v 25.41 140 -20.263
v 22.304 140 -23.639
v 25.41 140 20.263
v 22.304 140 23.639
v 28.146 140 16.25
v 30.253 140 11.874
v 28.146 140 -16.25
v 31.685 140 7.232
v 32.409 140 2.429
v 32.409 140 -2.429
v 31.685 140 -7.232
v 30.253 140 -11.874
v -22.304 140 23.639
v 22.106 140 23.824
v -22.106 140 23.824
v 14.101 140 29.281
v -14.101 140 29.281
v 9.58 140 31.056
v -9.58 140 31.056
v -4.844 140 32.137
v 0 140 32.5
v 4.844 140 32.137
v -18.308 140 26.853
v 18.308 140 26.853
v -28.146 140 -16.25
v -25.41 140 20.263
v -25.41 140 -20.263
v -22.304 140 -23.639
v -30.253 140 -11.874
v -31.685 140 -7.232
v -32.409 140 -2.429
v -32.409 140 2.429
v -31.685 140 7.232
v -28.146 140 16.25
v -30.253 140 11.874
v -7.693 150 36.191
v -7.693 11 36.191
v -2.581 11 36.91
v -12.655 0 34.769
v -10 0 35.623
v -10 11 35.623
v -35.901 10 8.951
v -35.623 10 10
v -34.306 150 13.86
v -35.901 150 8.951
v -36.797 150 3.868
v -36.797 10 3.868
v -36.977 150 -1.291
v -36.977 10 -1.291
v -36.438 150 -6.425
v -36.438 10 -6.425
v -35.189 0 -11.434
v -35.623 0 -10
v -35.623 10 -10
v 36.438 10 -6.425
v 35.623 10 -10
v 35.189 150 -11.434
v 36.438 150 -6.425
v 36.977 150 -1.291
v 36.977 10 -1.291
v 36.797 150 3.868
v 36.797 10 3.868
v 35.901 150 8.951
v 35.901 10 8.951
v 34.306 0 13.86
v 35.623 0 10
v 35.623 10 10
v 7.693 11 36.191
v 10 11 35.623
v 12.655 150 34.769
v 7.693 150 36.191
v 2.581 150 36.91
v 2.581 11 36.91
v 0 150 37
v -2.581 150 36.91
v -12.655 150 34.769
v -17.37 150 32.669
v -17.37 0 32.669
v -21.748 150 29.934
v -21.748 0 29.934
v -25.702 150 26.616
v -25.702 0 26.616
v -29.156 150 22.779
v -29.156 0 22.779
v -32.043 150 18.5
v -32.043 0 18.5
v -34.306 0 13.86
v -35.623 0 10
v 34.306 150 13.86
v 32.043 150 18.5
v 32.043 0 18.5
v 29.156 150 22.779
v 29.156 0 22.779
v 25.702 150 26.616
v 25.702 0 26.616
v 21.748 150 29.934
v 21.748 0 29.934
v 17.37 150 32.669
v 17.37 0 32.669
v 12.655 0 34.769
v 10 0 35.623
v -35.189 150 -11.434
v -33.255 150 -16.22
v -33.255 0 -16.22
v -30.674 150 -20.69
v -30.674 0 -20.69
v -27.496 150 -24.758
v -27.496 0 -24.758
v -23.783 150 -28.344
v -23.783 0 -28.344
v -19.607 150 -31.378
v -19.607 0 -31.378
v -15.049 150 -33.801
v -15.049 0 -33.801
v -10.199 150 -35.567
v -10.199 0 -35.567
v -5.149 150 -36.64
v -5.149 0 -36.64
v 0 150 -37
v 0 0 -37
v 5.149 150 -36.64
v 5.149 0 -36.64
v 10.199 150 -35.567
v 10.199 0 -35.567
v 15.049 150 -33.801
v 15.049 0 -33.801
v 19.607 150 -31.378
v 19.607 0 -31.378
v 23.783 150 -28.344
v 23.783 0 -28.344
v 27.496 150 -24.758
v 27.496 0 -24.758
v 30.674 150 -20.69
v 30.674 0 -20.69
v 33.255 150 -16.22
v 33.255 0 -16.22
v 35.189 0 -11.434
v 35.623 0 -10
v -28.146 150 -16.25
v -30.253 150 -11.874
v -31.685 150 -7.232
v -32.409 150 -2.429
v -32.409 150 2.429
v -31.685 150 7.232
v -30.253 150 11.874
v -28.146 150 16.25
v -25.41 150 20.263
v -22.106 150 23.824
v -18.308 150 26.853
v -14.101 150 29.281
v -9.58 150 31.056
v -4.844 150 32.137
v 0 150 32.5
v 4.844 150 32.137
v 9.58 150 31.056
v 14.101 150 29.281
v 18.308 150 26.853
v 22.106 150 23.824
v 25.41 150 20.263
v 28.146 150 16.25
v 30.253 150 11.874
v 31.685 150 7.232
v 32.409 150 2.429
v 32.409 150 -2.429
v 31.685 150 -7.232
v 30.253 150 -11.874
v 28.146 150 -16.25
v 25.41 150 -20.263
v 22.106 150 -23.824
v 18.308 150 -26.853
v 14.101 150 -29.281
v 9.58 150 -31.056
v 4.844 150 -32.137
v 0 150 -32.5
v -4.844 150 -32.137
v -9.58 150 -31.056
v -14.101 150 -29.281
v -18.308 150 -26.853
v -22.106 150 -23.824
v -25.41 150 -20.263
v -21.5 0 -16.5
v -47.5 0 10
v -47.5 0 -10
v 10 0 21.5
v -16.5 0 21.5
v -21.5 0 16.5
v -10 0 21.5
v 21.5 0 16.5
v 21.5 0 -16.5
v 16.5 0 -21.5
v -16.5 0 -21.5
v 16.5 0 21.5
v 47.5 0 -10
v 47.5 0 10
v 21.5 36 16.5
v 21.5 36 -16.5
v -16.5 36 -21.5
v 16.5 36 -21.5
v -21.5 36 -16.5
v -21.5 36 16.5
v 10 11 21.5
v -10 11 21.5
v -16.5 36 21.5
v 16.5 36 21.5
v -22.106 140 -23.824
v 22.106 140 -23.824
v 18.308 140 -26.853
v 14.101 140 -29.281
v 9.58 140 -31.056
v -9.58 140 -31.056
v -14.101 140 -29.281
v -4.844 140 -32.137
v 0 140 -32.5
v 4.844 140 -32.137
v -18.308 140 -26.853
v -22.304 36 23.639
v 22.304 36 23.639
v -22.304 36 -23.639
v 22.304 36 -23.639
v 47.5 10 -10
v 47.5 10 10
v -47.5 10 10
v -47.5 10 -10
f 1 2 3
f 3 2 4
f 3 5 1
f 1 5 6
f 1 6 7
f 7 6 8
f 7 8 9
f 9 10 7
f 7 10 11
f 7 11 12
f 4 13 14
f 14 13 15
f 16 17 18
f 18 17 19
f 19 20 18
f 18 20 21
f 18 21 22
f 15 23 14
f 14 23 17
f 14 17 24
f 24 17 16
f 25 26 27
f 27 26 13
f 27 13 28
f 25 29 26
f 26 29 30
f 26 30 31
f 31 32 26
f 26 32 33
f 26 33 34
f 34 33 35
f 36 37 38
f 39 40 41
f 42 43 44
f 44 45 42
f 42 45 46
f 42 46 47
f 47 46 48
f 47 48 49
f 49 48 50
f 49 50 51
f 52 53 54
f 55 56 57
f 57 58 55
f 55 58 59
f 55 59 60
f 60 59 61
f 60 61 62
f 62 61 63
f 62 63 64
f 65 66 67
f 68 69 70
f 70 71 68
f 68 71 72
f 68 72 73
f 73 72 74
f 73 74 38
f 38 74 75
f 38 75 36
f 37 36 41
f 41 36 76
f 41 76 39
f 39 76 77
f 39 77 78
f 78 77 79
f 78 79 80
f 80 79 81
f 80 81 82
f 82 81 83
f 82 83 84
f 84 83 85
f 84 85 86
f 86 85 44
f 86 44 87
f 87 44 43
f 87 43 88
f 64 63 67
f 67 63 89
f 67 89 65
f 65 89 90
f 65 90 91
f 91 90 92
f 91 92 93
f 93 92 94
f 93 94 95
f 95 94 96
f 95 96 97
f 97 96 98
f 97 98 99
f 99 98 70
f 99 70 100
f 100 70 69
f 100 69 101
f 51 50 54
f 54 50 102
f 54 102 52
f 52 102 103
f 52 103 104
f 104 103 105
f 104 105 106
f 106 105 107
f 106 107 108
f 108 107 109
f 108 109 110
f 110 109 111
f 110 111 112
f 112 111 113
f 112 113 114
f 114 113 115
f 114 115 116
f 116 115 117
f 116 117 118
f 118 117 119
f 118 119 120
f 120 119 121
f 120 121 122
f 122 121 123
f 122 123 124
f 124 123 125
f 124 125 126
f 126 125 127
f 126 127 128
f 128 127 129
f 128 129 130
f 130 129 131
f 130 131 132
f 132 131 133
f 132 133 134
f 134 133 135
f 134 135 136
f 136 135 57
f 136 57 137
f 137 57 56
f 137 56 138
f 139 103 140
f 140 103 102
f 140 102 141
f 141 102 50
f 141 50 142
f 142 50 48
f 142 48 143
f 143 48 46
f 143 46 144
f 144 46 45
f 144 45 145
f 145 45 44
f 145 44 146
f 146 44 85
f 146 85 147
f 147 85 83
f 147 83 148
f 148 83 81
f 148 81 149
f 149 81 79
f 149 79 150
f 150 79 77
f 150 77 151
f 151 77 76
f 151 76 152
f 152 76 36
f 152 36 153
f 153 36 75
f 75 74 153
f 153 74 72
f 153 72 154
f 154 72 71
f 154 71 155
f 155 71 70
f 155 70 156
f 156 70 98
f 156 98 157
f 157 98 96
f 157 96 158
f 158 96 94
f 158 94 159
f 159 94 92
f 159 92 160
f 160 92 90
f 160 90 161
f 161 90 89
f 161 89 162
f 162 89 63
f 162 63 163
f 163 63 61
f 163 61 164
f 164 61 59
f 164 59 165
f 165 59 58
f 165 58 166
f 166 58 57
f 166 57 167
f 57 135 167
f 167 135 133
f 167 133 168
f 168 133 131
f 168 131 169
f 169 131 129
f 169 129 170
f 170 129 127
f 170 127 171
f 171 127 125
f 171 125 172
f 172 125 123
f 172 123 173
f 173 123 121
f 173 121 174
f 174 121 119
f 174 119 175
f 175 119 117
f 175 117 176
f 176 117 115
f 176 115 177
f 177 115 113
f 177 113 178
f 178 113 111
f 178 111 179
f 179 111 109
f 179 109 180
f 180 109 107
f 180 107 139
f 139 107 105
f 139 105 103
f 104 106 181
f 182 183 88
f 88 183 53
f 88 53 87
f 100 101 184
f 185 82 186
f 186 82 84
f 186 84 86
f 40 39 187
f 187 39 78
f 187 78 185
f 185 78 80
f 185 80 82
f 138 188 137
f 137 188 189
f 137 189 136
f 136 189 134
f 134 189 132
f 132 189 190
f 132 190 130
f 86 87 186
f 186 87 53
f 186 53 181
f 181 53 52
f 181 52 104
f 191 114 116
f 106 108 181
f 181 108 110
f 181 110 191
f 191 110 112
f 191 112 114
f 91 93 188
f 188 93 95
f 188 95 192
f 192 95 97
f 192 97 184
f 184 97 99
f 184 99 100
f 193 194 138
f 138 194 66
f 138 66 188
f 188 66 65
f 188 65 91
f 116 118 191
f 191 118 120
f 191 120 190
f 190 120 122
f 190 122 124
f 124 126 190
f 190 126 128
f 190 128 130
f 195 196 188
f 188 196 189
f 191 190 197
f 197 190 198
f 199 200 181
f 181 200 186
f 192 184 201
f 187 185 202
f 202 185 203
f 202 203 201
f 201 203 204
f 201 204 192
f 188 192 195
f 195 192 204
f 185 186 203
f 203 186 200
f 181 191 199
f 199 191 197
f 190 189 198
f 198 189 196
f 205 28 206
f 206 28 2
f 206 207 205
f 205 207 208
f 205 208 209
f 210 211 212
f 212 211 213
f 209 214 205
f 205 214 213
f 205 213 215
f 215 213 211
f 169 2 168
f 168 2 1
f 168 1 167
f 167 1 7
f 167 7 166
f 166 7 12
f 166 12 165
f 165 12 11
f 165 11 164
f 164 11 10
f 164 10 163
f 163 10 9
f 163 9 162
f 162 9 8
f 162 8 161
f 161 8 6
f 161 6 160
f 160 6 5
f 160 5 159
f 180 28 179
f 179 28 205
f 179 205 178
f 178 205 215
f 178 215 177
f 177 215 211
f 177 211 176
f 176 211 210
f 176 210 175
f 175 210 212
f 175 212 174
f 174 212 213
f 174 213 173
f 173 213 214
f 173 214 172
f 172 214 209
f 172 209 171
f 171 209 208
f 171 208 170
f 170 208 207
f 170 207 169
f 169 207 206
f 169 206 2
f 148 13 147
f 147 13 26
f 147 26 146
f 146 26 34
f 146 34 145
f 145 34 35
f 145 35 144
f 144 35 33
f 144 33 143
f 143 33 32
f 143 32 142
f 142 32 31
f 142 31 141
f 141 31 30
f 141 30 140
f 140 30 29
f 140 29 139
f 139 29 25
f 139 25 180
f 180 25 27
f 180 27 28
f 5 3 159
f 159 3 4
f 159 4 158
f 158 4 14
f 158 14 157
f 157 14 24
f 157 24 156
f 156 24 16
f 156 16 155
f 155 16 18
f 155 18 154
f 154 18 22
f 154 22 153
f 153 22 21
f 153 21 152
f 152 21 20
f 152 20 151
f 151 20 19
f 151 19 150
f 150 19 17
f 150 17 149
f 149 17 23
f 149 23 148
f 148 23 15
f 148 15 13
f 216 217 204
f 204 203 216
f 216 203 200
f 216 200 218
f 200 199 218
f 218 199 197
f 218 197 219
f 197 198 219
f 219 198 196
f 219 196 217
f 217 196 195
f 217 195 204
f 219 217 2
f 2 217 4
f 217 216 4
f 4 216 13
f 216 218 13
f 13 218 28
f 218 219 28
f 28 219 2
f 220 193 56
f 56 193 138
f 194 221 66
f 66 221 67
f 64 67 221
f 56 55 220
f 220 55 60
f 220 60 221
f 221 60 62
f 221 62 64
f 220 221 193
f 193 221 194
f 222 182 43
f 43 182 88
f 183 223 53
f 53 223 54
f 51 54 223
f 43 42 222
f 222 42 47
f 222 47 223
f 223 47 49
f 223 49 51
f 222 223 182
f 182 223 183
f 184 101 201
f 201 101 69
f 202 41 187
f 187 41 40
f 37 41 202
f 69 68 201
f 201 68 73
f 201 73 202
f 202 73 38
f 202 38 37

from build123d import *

# Parameters (mm, degrees)
SKETCH1_R           = 37
BOSS_EXTRUDE1_DEPTH = 150
SKETCH2_W           = 23
SKETCH2_H           = 23
CUT_EXTRUDE1_DEPTH  = 150
SKETCH3_W           = 43
SKETCH3_H           = 43
CUT_EXTRUDE2_DEPTH  = 36
CHAMFER1_SIZE       = 5
SKETCH5_R           = 32.5
CUT_EXTRUDE3_DEPTH  = 10
SKETCH11_W          = 44.607289856
SKETCH11_H          = 47.277792796
CUT_EXTRUDE7_DEPTH  = 104
SKETCH12_W          = 26
SKETCH12_H          = 20
BOSS_EXTRUDE2_DEPTH = 10
SKETCH13_W          = 20
SKETCH13_H          = 31
CUT_EXTRUDE8_DEPTH  = 11


with BuildPart() as part:
    # Sketch1 → Boss-Extrude1 (new body)
    with BuildSketch(Plane(origin=(0, 0, 0), x_dir=(1, 0, 0), z_dir=(0, 1, 0))):
        with Locations(Location((0, 0, 0), (0, 0, 270))):
            Circle(SKETCH1_R)
    extrude(amount=BOSS_EXTRUDE1_DEPTH)

    # Sketch2 → Cut-Extrude1 (cut)
    with BuildSketch(Plane(origin=(0, 150, 0), x_dir=(1, 0, 0), z_dir=(0, 1, 0))):
        Rectangle(SKETCH2_W, SKETCH2_H)
    extrude(amount=-CUT_EXTRUDE1_DEPTH, mode=Mode.SUBTRACT)

    # Sketch3 → Cut-Extrude2 (cut)
    with BuildSketch(Plane.XZ):
        Rectangle(SKETCH3_W, SKETCH3_H)
    extrude(amount=-CUT_EXTRUDE2_DEPTH, mode=Mode.SUBTRACT)

    # Chamfer1
    chamfer1_edges = [part.edges().sort_by_distance(p)[0] for p in [
        (21.5, 18, 21.5),
        (21.5, 18, -21.5),
        (-21.5, 18, -21.5),
        (-21.5, 18, 21.5),
    ]]
    chamfer(chamfer1_edges, length=CHAMFER1_SIZE)

    # Sketch5 → Cut-Extrude3 (cut)
    with BuildSketch(Plane(origin=(0, 150, 0), x_dir=(1, 0, 0), z_dir=(0, 1, 0))):
        with Locations(Location((0, 0, 0), (0, 0, 270))):
            Circle(SKETCH5_R)
    extrude(amount=-CUT_EXTRUDE3_DEPTH, mode=Mode.SUBTRACT)

    # Sketch11 → Cut-Extrude7 (cut)
    with BuildSketch(Plane(origin=(0, 140, 0), x_dir=(1, 0, 0), z_dir=(0, 1, 0))):
        Rectangle(SKETCH11_W, SKETCH11_H)
    extrude(amount=-CUT_EXTRUDE7_DEPTH, mode=Mode.SUBTRACT)

    # Sketch12 → Boss-Extrude2 (add)
    with BuildSketch(Plane.XZ):
        with Locations((-34.5, 0)):
            Rectangle(SKETCH12_W, SKETCH12_H)
        with Locations((34.5, 0)):
            Rectangle(SKETCH12_W, SKETCH12_H)
    extrude(amount=-BOSS_EXTRUDE2_DEPTH)

    # Sketch13 → Cut-Extrude8 (cut)
    with BuildSketch(Plane.XZ):
        with Locations((0, 37)):
            Rectangle(SKETCH13_W, SKETCH13_H)
    extrude(amount=-CUT_EXTRUDE8_DEPTH, mode=Mode.SUBTRACT)


solid = part.part
